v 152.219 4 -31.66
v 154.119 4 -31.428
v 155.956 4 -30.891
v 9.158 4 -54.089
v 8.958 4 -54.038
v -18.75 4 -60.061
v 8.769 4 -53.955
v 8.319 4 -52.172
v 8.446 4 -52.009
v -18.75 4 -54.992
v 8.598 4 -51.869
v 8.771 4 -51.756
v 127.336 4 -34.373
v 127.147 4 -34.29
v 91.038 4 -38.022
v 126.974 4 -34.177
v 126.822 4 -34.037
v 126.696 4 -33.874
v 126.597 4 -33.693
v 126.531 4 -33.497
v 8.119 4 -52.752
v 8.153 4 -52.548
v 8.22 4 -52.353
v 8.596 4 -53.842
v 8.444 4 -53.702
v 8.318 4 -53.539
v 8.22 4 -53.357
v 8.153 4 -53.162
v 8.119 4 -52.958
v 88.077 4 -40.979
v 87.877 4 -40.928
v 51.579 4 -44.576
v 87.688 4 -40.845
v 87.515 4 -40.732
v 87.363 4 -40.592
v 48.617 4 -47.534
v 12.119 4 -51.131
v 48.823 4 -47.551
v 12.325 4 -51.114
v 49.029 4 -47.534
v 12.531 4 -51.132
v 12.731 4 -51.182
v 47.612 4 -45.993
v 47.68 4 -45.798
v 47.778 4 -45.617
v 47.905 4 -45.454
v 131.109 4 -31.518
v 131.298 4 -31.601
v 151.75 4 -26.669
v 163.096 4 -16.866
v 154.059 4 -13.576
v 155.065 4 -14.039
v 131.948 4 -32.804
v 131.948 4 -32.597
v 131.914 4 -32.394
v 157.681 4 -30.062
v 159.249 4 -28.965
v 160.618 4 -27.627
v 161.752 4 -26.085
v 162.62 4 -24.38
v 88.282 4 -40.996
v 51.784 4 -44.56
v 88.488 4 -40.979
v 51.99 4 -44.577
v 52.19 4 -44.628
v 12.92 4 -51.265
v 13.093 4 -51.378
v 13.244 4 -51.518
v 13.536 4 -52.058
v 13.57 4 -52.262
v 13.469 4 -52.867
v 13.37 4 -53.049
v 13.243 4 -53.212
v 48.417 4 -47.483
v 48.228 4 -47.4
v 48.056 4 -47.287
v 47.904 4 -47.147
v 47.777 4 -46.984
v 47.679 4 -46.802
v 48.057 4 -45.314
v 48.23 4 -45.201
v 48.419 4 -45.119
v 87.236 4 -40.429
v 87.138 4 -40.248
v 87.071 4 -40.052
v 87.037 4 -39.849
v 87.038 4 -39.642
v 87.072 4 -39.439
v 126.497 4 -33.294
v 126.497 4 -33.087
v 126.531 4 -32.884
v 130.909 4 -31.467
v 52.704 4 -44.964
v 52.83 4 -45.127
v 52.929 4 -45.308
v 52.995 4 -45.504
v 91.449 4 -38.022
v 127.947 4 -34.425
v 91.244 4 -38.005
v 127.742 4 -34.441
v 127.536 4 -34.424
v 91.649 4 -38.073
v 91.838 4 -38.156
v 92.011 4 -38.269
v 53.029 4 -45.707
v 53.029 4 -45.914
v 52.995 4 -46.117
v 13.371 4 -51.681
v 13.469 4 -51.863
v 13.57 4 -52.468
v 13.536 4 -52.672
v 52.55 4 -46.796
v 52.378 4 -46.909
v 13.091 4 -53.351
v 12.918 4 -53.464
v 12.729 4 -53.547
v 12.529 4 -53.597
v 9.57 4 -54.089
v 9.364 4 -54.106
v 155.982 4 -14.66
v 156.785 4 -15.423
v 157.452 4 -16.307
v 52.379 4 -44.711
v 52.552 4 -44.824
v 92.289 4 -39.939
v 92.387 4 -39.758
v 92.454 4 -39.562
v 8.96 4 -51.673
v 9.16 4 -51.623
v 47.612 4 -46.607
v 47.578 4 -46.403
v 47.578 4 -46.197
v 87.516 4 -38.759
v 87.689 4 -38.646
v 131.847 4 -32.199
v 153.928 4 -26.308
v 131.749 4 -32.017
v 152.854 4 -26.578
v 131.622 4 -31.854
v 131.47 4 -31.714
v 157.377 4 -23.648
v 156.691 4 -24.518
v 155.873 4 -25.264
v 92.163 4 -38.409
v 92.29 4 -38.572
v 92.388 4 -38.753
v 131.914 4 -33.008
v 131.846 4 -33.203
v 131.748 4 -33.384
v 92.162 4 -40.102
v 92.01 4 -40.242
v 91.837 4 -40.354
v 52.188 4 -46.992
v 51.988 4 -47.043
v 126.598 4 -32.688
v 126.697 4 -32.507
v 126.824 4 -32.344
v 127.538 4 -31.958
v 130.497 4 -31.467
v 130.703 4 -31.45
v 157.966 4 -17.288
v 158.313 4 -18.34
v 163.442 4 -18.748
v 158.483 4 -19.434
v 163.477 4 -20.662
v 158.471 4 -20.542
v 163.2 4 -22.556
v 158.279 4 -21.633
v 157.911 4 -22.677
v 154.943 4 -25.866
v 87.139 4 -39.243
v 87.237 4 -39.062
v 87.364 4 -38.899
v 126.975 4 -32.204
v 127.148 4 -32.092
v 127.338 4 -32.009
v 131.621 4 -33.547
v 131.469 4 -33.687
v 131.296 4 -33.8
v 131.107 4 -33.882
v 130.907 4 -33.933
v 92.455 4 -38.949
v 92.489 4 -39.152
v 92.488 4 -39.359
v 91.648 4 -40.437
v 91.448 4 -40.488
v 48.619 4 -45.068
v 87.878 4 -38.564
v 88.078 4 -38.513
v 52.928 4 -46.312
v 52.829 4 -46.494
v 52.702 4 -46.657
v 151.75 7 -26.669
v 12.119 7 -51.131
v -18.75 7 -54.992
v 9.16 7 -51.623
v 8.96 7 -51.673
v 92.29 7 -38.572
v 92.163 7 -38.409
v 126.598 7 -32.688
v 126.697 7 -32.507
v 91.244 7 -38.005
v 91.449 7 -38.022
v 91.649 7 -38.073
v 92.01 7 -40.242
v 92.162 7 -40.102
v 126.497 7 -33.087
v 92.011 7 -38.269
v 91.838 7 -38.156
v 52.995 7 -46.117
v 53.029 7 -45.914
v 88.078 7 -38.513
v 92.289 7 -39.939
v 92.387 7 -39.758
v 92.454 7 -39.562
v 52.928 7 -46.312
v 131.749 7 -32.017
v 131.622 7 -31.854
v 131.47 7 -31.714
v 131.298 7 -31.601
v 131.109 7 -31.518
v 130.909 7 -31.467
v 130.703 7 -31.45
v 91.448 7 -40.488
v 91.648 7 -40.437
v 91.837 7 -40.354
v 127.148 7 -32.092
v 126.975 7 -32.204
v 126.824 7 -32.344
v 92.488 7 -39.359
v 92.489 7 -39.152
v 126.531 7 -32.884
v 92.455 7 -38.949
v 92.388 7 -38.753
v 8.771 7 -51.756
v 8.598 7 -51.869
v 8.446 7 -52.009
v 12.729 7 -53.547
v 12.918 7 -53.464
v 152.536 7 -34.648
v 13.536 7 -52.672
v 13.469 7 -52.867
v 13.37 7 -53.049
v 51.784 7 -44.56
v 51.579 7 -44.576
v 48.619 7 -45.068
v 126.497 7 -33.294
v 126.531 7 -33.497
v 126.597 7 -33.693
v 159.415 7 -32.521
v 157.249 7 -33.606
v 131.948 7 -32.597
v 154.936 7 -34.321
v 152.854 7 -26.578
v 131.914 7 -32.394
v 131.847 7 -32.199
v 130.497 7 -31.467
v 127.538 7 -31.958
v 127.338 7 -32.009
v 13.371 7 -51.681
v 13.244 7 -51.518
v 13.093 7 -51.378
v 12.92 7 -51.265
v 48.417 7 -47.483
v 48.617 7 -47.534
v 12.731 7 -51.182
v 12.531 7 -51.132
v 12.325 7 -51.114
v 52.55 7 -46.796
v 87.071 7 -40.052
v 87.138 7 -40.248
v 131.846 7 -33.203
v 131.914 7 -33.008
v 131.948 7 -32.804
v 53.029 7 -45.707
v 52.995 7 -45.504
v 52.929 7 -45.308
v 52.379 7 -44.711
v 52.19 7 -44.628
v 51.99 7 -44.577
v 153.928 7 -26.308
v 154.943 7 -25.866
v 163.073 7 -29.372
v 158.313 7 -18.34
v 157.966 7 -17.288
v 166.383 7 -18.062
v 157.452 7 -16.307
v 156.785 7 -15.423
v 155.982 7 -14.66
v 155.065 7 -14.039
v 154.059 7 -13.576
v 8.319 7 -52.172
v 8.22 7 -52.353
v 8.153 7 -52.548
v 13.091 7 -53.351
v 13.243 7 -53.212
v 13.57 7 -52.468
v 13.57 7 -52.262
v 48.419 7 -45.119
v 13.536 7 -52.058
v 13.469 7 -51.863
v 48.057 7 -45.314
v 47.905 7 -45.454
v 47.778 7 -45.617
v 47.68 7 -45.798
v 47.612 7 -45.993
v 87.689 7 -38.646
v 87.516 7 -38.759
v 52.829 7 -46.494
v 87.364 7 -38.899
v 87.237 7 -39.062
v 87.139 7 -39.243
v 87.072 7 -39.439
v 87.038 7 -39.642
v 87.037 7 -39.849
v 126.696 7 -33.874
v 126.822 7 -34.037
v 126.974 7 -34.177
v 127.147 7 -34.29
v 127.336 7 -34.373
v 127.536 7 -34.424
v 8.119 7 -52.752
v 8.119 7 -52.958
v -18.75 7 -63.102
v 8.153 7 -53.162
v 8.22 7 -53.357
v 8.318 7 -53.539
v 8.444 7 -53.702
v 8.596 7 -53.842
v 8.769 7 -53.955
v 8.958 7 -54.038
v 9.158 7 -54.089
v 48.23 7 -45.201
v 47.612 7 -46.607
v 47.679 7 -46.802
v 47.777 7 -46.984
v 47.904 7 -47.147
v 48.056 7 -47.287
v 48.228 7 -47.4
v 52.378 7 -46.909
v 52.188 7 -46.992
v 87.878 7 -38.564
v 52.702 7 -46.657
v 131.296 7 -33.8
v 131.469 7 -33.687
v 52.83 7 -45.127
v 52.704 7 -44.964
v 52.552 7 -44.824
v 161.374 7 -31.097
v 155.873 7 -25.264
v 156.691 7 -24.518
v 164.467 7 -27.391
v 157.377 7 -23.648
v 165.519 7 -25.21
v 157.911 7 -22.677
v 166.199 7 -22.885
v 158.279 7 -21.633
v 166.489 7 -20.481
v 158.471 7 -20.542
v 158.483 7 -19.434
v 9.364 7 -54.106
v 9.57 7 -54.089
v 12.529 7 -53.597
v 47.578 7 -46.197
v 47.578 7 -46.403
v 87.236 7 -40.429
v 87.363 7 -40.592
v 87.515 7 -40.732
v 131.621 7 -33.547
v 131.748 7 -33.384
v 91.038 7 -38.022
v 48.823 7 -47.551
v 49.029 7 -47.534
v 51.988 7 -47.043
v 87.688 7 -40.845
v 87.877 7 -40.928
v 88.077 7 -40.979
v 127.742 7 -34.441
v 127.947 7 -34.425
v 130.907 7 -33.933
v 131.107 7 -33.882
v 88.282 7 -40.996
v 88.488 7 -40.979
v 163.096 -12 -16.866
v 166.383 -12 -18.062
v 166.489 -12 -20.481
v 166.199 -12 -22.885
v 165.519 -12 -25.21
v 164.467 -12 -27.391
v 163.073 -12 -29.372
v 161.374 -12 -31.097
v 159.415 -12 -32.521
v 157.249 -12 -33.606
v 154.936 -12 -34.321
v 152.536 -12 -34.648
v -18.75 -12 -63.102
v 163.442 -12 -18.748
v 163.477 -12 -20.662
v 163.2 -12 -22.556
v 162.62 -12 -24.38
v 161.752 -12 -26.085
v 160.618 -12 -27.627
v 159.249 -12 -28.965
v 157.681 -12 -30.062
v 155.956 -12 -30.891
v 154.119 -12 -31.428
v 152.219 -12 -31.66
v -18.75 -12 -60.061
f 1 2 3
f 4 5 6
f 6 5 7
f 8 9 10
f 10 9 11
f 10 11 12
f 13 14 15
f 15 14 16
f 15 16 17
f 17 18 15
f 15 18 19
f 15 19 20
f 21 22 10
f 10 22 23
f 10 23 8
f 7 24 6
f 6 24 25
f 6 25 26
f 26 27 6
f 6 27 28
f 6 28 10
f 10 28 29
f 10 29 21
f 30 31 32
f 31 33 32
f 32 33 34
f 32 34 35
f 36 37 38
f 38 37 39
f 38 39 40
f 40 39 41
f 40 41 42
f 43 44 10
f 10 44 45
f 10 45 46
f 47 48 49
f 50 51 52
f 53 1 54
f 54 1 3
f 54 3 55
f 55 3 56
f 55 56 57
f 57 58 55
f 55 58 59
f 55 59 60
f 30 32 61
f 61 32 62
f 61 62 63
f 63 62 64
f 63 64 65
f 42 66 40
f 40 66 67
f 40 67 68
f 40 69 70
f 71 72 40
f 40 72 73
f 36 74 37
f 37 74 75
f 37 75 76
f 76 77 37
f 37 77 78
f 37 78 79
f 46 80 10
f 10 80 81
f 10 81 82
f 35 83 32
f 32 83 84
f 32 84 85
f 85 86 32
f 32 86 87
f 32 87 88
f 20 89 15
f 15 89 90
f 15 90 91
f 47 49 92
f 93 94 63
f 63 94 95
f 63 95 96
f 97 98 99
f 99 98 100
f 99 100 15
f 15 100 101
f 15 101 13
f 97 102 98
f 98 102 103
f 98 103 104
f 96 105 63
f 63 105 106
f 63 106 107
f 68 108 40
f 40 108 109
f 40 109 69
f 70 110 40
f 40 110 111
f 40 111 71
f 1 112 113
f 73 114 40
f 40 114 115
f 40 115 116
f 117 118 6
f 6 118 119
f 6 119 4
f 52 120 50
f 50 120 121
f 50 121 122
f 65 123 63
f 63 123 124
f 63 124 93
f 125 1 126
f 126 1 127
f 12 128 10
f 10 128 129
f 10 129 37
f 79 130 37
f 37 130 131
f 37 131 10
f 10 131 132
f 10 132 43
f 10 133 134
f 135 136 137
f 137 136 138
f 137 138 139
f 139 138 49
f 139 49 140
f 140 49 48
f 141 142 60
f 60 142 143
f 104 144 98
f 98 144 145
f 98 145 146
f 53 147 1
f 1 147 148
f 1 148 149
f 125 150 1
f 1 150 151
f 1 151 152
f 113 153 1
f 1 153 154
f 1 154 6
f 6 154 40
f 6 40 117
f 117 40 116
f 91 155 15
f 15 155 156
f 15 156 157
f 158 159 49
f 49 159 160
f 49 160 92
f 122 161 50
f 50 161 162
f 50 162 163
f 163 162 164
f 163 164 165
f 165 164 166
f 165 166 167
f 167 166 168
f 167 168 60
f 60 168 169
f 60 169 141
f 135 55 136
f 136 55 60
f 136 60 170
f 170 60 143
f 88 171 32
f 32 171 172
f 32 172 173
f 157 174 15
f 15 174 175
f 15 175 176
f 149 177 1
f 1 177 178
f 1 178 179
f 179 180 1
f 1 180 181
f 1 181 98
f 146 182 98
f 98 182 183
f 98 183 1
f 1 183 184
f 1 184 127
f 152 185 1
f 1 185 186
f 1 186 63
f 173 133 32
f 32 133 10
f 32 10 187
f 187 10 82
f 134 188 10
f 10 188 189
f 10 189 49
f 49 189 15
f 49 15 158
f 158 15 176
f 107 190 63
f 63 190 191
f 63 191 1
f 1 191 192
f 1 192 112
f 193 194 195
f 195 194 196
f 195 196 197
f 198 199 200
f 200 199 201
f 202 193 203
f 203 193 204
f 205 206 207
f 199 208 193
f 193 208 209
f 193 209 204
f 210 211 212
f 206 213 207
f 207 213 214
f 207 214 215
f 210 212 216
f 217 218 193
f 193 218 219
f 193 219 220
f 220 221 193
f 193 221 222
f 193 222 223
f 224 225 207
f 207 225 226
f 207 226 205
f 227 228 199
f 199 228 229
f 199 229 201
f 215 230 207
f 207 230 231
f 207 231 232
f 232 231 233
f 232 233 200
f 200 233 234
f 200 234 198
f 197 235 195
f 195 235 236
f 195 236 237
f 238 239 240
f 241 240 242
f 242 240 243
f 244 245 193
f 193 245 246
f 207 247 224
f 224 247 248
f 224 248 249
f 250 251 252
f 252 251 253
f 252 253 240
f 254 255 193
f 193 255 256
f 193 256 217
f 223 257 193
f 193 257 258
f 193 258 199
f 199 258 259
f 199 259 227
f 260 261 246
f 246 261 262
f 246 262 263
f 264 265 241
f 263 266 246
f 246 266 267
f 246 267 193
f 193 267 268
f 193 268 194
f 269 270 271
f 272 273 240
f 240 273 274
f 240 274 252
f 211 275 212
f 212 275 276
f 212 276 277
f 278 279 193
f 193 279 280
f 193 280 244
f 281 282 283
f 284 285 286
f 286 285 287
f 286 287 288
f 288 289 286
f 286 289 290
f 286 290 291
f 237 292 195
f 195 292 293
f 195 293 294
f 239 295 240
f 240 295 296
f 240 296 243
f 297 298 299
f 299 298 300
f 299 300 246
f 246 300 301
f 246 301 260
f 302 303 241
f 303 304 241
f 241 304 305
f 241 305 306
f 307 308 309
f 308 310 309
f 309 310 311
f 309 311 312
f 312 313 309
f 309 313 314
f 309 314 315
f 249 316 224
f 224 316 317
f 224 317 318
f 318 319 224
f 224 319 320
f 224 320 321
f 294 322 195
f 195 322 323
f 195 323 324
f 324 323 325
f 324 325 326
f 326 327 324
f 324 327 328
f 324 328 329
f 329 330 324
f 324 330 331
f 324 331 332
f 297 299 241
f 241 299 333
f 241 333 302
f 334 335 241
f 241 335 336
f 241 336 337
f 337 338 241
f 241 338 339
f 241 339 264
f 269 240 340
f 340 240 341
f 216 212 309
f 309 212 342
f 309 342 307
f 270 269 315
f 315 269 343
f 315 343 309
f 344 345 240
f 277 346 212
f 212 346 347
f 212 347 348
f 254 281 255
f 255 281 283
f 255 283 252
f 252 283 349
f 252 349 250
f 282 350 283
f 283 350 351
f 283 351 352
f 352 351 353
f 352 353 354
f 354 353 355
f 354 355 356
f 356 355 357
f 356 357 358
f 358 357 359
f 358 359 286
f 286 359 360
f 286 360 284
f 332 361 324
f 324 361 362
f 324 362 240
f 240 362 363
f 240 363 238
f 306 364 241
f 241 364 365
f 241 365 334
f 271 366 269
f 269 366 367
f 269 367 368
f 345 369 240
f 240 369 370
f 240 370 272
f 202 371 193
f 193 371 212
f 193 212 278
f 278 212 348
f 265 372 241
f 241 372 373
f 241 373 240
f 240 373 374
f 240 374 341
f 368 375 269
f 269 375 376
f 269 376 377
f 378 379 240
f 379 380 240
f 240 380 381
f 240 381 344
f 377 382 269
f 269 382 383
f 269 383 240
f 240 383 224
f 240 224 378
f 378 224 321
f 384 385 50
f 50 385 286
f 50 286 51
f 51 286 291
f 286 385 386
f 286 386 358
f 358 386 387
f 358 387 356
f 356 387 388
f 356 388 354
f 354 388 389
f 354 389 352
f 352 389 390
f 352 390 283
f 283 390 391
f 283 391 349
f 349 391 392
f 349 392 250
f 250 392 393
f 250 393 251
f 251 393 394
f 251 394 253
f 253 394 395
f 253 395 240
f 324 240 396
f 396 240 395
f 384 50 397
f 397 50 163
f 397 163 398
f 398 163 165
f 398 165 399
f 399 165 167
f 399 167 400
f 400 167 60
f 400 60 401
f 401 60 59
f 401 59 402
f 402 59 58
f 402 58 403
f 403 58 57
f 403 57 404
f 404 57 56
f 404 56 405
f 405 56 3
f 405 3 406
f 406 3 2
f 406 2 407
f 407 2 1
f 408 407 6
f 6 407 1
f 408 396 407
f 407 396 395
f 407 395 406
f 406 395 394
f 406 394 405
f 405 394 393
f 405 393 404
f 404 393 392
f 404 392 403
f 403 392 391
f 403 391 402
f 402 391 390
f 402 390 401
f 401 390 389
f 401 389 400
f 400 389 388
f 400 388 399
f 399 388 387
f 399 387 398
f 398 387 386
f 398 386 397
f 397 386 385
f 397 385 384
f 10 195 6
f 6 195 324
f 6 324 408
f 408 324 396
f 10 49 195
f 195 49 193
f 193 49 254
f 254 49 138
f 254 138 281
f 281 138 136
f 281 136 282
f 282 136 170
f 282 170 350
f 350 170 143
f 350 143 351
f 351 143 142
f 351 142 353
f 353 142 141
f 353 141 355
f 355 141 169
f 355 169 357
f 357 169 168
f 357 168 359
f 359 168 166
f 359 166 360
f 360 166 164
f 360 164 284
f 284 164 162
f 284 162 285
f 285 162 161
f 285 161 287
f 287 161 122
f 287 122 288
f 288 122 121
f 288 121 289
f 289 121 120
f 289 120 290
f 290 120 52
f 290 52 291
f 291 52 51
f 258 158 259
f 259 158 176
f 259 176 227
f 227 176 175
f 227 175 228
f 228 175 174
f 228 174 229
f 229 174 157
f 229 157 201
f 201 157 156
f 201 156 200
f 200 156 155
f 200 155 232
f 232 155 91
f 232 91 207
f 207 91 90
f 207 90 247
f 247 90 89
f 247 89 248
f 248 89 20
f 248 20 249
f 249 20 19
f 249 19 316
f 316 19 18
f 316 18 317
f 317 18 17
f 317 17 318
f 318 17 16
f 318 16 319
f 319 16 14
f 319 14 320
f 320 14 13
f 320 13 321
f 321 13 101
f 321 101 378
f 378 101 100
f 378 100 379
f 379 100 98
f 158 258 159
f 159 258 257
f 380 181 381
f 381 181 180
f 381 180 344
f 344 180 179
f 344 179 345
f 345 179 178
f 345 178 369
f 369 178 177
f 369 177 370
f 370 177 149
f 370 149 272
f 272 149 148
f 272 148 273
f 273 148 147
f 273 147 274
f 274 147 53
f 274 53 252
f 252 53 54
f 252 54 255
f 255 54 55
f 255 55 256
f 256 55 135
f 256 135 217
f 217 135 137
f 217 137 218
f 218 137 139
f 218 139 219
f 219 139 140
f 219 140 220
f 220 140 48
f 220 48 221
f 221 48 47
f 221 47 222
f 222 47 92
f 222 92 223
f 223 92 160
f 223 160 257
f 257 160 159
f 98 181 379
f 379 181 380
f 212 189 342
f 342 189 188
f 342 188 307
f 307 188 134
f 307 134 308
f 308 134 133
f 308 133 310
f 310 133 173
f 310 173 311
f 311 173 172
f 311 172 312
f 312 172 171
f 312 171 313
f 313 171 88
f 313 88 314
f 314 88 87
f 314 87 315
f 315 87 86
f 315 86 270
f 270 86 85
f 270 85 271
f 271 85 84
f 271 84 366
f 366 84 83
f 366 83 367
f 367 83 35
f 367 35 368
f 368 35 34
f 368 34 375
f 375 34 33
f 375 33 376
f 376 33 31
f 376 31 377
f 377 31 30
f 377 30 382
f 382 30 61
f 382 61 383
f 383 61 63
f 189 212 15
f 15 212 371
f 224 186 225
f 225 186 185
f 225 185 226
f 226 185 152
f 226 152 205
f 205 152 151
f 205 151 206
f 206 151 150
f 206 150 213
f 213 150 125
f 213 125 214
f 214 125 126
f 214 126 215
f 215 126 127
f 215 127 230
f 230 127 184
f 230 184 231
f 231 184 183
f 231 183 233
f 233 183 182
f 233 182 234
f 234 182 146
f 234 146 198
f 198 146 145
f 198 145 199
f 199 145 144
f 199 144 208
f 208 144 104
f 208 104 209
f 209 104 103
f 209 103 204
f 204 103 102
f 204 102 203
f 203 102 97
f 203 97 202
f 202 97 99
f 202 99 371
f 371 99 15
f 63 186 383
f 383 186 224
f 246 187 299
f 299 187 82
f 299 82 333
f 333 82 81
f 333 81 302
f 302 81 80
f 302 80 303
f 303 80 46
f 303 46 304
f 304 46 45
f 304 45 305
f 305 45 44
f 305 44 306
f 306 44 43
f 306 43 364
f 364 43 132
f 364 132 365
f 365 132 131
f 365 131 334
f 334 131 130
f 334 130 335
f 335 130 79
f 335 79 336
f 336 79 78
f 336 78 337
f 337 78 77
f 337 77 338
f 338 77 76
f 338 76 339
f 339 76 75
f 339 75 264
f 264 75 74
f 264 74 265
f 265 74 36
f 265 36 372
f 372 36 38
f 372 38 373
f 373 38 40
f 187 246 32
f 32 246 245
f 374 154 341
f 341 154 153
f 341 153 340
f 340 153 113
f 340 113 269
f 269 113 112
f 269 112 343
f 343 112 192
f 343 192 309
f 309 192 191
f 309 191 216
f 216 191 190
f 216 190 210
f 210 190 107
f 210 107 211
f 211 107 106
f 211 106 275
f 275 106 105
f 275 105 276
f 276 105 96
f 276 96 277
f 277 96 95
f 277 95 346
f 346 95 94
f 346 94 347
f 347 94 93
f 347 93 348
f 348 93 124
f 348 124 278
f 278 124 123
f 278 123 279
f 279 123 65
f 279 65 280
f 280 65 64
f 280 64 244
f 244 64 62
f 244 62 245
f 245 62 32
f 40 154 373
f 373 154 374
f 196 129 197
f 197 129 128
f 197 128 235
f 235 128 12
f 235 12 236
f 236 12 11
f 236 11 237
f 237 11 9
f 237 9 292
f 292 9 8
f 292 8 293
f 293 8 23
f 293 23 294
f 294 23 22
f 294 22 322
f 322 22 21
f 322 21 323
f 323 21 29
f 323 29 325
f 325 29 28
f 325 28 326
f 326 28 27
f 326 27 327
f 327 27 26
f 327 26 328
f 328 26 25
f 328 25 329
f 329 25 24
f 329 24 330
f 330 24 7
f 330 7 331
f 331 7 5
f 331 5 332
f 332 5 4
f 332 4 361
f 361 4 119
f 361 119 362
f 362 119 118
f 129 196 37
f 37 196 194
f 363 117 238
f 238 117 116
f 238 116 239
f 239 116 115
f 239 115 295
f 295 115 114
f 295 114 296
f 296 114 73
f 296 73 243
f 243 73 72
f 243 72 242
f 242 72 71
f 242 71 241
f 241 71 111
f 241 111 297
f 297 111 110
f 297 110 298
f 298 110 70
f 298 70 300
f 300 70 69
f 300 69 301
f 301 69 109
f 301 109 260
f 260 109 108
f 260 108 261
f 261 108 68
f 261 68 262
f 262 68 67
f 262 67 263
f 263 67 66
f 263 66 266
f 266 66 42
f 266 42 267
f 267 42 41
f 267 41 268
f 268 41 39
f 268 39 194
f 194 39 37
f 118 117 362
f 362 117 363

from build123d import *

# Parameters (mm, degrees)
SKETCH_1_W           = 35
SKETCH_1_H           = 55
EXTRUDE_1_DEPTH      = 1
EXTRUDE_2_DEPTH      = 3
SKETCH_3_R           = 5
CUT_EXTRUDE_1_DEPTH  = 169.569903897
SKETCH_4_R           = 4
CUT_EXTRUDE_2_DEPTH  = 2
SKETCH_5_R           = 2
CUT_EXTRUDE_3_DEPTH  = 2
EXTRUDE_START        = 7
EXTRUDE_3_DEPTH      = 7
CUT_EXTRUDE_START    = -1.5
SKETCH_9_W           = 10
SKETCH_9_H           = 26
CUT_EXTRUDE_4_DEPTH  = 168.318874833
SKETCH_10_R          = 1.5
CUT_EXTRUDE_5_DEPTH  = 194.595583627
EXTRUDE_4_DEPTH      = 3
SKETCH_13_W          = 334.012533363
SKETCH_13_H          = 161.456209481
CUT_EXTRUDE_6_DEPTH  = 10
SKETCH_14_R          = 3.5
CUT_EXTRUDE_7_DEPTH  = 2.5
SKETCH_15_R          = 5
CUT_EXTRUDE_8_DEPTH  = 179.854165453
EXTRUDE_START_2      = 16
EXTRUDE_5_DEPTH      = 16
EXTRUDE_6_DEPTH      = 7
SKETCH_19_W          = 10
SKETCH_19_H          = 26
CUT_EXTRUDE_9_DEPTH  = 180.209193181
SKETCH_20_R          = 1.5
CUT_EXTRUDE_10_DEPTH = 175.844216376
THREAD_1_PITCH       = 0.6
CUT_EXTRUDE_11_DEPTH = 181.709193232
SKETCH_22_W          = 13
SKETCH_22_H          = 1.5
CUT_EXTRUDE_12_DEPTH = 7
SKETCH_23_R          = 5
EXTRUDE_7_DEPTH      = 2
CUT_EXTRUDE_START_2  = -3
CUT_EXTRUDE_15_DEPTH = 177.762490825
SKETCH_25_R          = 7.5
CUT_EXTRUDE_16_DEPTH = 4
CUT_EXTRUDE_17_DEPTH = 10
SKETCH_27_R          = 1.75
CUT_EXTRUDE_18_DEPTH = 10
CUT_EXTRUDE_19_DEPTH = 180.762490825
CUT_EXTRUDE_START_3  = -10
SKETCH_29_R          = 3.5
CUT_EXTRUDE_23_DEPTH = 10
CUT_EXTRUDE_24_DEPTH = 10


with BuildPart() as part:
    # Sketch 1 → 凸台-拉伸1 (new body)
    with BuildSketch(Plane(origin=(0, 0, 0), x_dir=(1, 0, 0), z_dir=(0, 1, 0))):
        Rectangle(SKETCH_1_W, SKETCH_1_H)
    extrude(amount=EXTRUDE_1_DEPTH)

    # 草图2 → 凸台-拉伸2 (add)
    with BuildSketch(Plane(origin=(0, 1, 0), x_dir=(1, 0, 0), z_dir=(0, 1, 0))):
        with BuildLine():
            Line((106.75, -2.25), (106.75, 2.25))
            Line((106.75, 2.25), (121.75, 2.25))
            ThreePointArc((121.75, 2.25), (122.922125199, 2.352547667), (124.058635967, 2.65707481))
            Line((124.058635967, 2.65707481), (154.058635967, 13.576181838))
            ThreePointArc((154.058635967, 13.576181838), (158.397452333, 21.091232227), (151.75, 26.669107028))
            Line((151.75, 26.669107028), (-31.447415548, 57.101298968))
            ThreePointArc((-31.447415548, 57.101298968), (-37.800418235, 56.264673928), (-42.609265279, 52.029632639))
            Line((-42.609265279, 52.029632639), (-60.161792173, 23.605896086))
            ThreePointArc((-60.161792173, 23.605896086), (-61.717833724, 20.073278016), (-62.25, 16.25))
            Line((-62.25, 16.25), (-62.25, -16.25))
            ThreePointArc((-62.25, -16.25), (-61.717833724, -20.073278016), (-60.161792173, -23.605896086))
            Line((-60.161792173, -23.605896086), (-42.609265279, -52.029632639))
            ThreePointArc((-42.609265279, -52.029632639), (-37.800418235, -56.264673928), (-31.447415548, -57.101298968))
            Line((-31.447415548, -57.101298968), (151.75, -26.669107028))
            ThreePointArc((151.75, -26.669107028), (158.397452333, -21.091232227), (154.058635967, -13.576181838))
            Line((154.058635967, -13.576181838), (124.058635967, -2.65707481))
            ThreePointArc((124.058635967, -2.65707481), (122.922125199, -2.352547667), (121.75, -2.25))
            Line((121.75, -2.25), (106.75, -2.25))
        make_face()
    extrude(amount=EXTRUDE_2_DEPTH)

    # 草图3 → 切除-拉伸1 (cut, through all)
    with BuildSketch(Plane(origin=(0, 4, 0), x_dir=(1, 0, 0), z_dir=(0, 1, 0))):
        with Locations(Location((-48.25, 16.25, 0), (0, 0, 270))):
            Circle(SKETCH_3_R)
        with Locations(Location((-48.25, -16.25, 0), (0, 0, 270))):
            Circle(SKETCH_3_R)
    extrude(amount=-CUT_EXTRUDE_1_DEPTH, mode=Mode.SUBTRACT)

    # 草图4 → 切除-拉伸2 (cut)
    with BuildSketch(Plane(origin=(0, 4, 0), x_dir=(1, 0, 0), z_dir=(0, 1, 0))):
        with Locations(Location((-33.25, 46.25, 0), (0, 0, 270))):
            Circle(SKETCH_4_R)
        with Locations(Location((-33.25, -46.25, 0), (0, 0, 270))):
            Circle(SKETCH_4_R)
    extrude(amount=-CUT_EXTRUDE_2_DEPTH, mode=Mode.SUBTRACT)

    # 草图5 → 切除-拉伸3 (cut)
    with BuildSketch(Plane(origin=(0, 4, 0), x_dir=(1, 0, 0), z_dir=(0, 1, 0))):
        with Locations(Location((121.75, 9, 0), (0, 0, 270))):
            Circle(SKETCH_5_R)
        with Locations(Location((121.75, -9, 0), (0, 0, 270))):
            Circle(SKETCH_5_R)
        with Locations(Location((151.75, 19.919107028, 0), (0, 0, 270))):
            Circle(SKETCH_5_R)
        with Locations(Location((151.75, -19.919107028, 0), (0, 0, 270))):
            Circle(SKETCH_5_R)
    extrude(amount=-CUT_EXTRUDE_3_DEPTH, mode=Mode.SUBTRACT)

    # 草图8 → 凸台-拉伸3 (add)
    with BuildSketch(Plane.XZ.offset(-1).offset(EXTRUDE_START)):
        with BuildLine():
            Line((-26.75, -26.25), (-39.75, -26.25))
            Line((-39.75, -26.25), (-39.75, -55.124119675))
            ThreePointArc((-39.75, -55.124119675), (-35.798281322, -56.950759894), (-31.447415548, -57.101298968))
            Line((-31.447415548, -57.101298968), (-26.75, -56.320978726))
            Line((-26.75, -56.320978726), (-26.75, -26.25))
        make_face()
    extrude_3 = extrude(amount=-EXTRUDE_3_DEPTH)

    # 镜向1: 凸台-拉伸3 across plane
    add(extrude_3.mirror(Plane.XY))

    # 草图9 → 切除-拉伸4 (cut, through all)
    with BuildSketch(Plane.XZ.offset(6).offset(CUT_EXTRUDE_START)):
        with Locations((-33.25, -40.75)):
            Rectangle(SKETCH_9_W, SKETCH_9_H)
    cut_extrude_4 = extrude(amount=-CUT_EXTRUDE_4_DEPTH, mode=Mode.SUBTRACT)

    # 镜向2: 切除-拉伸4 across plane
    add(cut_extrude_4.mirror(Plane.XY), mode=Mode.SUBTRACT)

    # 草图10 → 切除-拉伸5 (cut, through all)
    with BuildSketch(Plane.XY.offset(-53.75)):
        with Locations((-33.25, -1.5)):
            Circle(SKETCH_10_R)
    cut_extrude_5 = extrude(amount=-CUT_EXTRUDE_5_DEPTH, mode=Mode.SUBTRACT)

    # 镜向3: 切除-拉伸5 across plane
    add(cut_extrude_5.mirror(Plane.XY), mode=Mode.SUBTRACT)

    # 草图12 → 凸台-拉伸4 (add)
    with BuildSketch(Plane(origin=(0, 4, 0), x_dir=(1, 0, 0), z_dir=(0, 1, 0))):
        with BuildLine():
            Line((152.536154407, 34.648141662), (-30.136445037, 64.993152763))
            ThreePointArc((-30.136445037, 64.993152763), (-32.296727103, 65.226071005), (-34.469475839, 65.210824842))
            Line((-34.469475839, 65.210824842), (-60.161792173, 23.605896086))
            ThreePointArc((-60.161792173, 23.605896086), (-61.717833724, 20.073278016), (-62.25, 16.25))
            Line((-62.25, 16.25), (-62.25, 2.25))
            Line((-62.25, 2.25), (121.75, 2.25))
            ThreePointArc((121.75, 2.25), (122.922125199, 2.352547667), (124.058635967, 2.65707481))
            Line((124.058635967, 2.65707481), (166.382589153, 18.061733966))
            ThreePointArc((166.382589153, 18.061733966), (163.073058037, 29.371665237), (152.536154407, 34.648141662))
        make_face()
    extrude(amount=EXTRUDE_4_DEPTH)

    # 草图13 → 切除-拉伸6 (cut)
    with BuildSketch(Plane.XZ.offset(-4)):
        with Locations((47.836319436, 6.16656882)):
            Rectangle(SKETCH_13_W, SKETCH_13_H)
    extrude(amount=CUT_EXTRUDE_6_DEPTH, mode=Mode.SUBTRACT)

    # 草图14 → 切除-拉伸7 (cut)
    with BuildSketch(Plane.XZ.offset(-4)):
        with Locations(Location((151.75, -19.919107028, 0), (0, 0, 270))):
            Circle(SKETCH_14_R)
        with Locations(Location((121.75, -9, 0), (0, 0, 270))):
            Circle(SKETCH_14_R)
    extrude(amount=-CUT_EXTRUDE_7_DEPTH, mode=Mode.SUBTRACT)

    # 草图15 → 切除-拉伸8 (cut, through all)
    with BuildSketch(Plane.XZ.offset(-4)):
        with Locations(Location((-48.25, -16.25, 0), (0, 0, 270))):
            Circle(SKETCH_15_R)
    extrude(amount=-CUT_EXTRUDE_8_DEPTH, mode=Mode.SUBTRACT)

    # 草图17 → 凸台-拉伸5 (add)
    with BuildSketch(Plane.XZ.offset(-4).offset(EXTRUDE_START_2)):
        with BuildLine():
            Line((-30.628058978, -62.03370759), (152.218782473, -31.659751942))
            ThreePointArc((152.218782473, -31.659751942), (161.216553887, -26.879484712), (163.096310198, -16.865626245))
            Line((163.096310198, -16.865626245), (166.382589153, -18.061733966))
            ThreePointArc((166.382589153, -18.061733966), (163.073058037, -29.371665237), (152.536154407, -34.648141662))
            Line((152.536154407, -34.648141662), (-30.136445037, -64.993152763))
            ThreePointArc((-30.136445037, -64.993152763), (-32.296727103, -65.226071005), (-34.469475839, -65.210824842))
            Line((-34.469475839, -65.210824842), (-36.504423199, -61.915526791))
            ThreePointArc((-36.504423199, -61.915526791), (-33.571714316, -62.246765295), (-30.628058978, -62.03370759))
        make_face()
    extrude(amount=-EXTRUDE_5_DEPTH)

    # 草图18 → 凸台-拉伸6 (add)
    with BuildSketch(Plane(origin=(0, 7, 0), x_dir=(1, 0, 0), z_dir=(0, 1, 0))):
        with BuildLine():
            Line((-39.75, 56.65979236), (-39.75, 26.25))
            Line((-39.75, 26.25), (-26.75, 26.25))
            Line((-26.75, 26.25), (-26.75, 64.430606916))
            Line((-26.75, 64.430606916), (-30.136445037, 64.993152763))
            ThreePointArc((-30.136445037, 64.993152763), (-32.296727103, 65.226071005), (-34.469475839, 65.210824842))
            Line((-34.469475839, 65.210824842), (-39.75, 56.65979236))
        make_face()
    extrude(amount=EXTRUDE_6_DEPTH)

    # 草图19 → 切除-拉伸9 (cut, through all)
    with BuildSketch(Plane(origin=(0, 14, 0), x_dir=(1, 0, 0), z_dir=(0, 1, 0)).offset(CUT_EXTRUDE_START)):
        with Locations((-33.25, 40.75)):
            Rectangle(SKETCH_19_W, SKETCH_19_H)
    extrude(amount=-CUT_EXTRUDE_9_DEPTH, mode=Mode.SUBTRACT)

    # 草图20 → 切除-拉伸10 (cut, through all)
    with BuildSketch(Plane.XY.offset(-53.75)):
        with Locations((-33.25, 9.5)):
            Circle(SKETCH_20_R)
    extrude(amount=-CUT_EXTRUDE_10_DEPTH, mode=Mode.SUBTRACT)

    # 螺纹线1: the profile of Sketch 1 2 profile screwed along a right-hand helix of 25 turns, 6 arcs to a turn; built about Z, then put on its axis
    thread_1_z = Axis((0, 0, 0), (0, 0, 1))
    thread_1_corners = [(1.4997, 0, -0.000173205), (1.824759525, 0, 0.187499999), (1.824759525, 0, 0.262499999), (1.4997, 0, 0.450173203)]
    with BuildLine(mode=Mode.PRIVATE) as thread_1_profile:
        Line(thread_1_corners[0], thread_1_corners[1])
        Line(thread_1_corners[1], thread_1_corners[2])
        Line(thread_1_corners[2], thread_1_corners[3])
        Line(thread_1_corners[3], thread_1_corners[0])
    thread_1_cap = Face(thread_1_profile.wire())
    thread_1_turn_angles = [0, 30, 60, 90, 120, 150, 180, 210, 240, 270, 300, 330, 360]
    thread_1_turn_weights = [1, 0.8660254037844387, 1, 0.8660254037844387, 1, 0.8660254037844387, 1, 0.8660254037844387, 1, 0.8660254037844387, 1, 0.8660254037844387, 1]
    thread_1_turn_rails = [Edge.make_bspline([Vector(p[0], p[1], 0).rotate(thread_1_z, thread_1_turn_angles[k]) / thread_1_turn_weights[k] + Vector(0, 0, p[2] + THREAD_1_PITCH * thread_1_turn_angles[k] / 360) for k in range(13)], [0, 0, 0, 1, 1, 2, 2, 3, 3, 4, 4, 5, 5, 6, 6, 6], 2, thread_1_turn_weights) for p in thread_1_corners]
    thread_1_turn_sides = [Face.make_surface_from_curves(thread_1_turn_rails[p[0]], thread_1_turn_rails[p[1]]) for p in [(0, 1), (1, 2), (2, 3), (3, 0)]]
    thread_1 = Plane(origin=(-33.25, 9.5, -53.75), x_dir=(-1, 0, 0), z_dir=(0, 0, -1)) * Solid(Shell([*[p.moved(Location((0, 0, THREAD_1_PITCH * i))) for i in range(25) for p in thread_1_turn_sides], thread_1_cap, thread_1_cap.rotate(thread_1_z, 9000).moved(Location((0, 0, THREAD_1_PITCH * 9000 / 360)))]))
    add(thread_1, mode=Mode.SUBTRACT)

    # 草图21 → 切除-拉伸11 (cut, through all)
    with BuildSketch(Plane(origin=(0, 14, 0), x_dir=(1, 0, 0), z_dir=(0, 1, 0))):
        with BuildLine():
            Line((-39.75, 27.75), (-26.75, 27.75))
            Line((-26.75, 27.75), (-26.75, 64.430606916))
            Line((-26.75, 64.430606916), (-30.136445037, 64.993152763))
            ThreePointArc((-30.136445037, 64.993152763), (-32.296727103, 65.226071005), (-34.469475839, 65.210824842))
            Line((-34.469475839, 65.210824842), (-39.75, 56.65979236))
            Line((-39.75, 56.65979236), (-39.75, 27.75))
        make_face()
    extrude(amount=-CUT_EXTRUDE_11_DEPTH, mode=Mode.SUBTRACT)

    # 草图22 → 切除-拉伸12 (cut)
    with BuildSketch(Plane(origin=(0, 14, 0), x_dir=(1, 0, 0), z_dir=(0, 1, 0))):
        with Locations((-33.25, 27)):
            Rectangle(SKETCH_22_W, SKETCH_22_H)
    extrude(amount=-CUT_EXTRUDE_12_DEPTH, mode=Mode.SUBTRACT)

    # 草图23 → 凸台-拉伸7 (add)
    with BuildSketch(Plane(origin=(0, 7, 0), x_dir=(1, 0, 0), z_dir=(0, 1, 0))):
        with BuildLine():
            Line((-26.75, 27.75), (-39.75, 27.75))
            Line((-39.75, 27.75), (-39.75, 56.65979236))
            Line((-39.75, 56.65979236), (-60.161792173, 23.605896086))
            ThreePointArc((-60.161792173, 23.605896086), (-61.717833724, 20.073278016), (-62.25, 16.25))
            Line((-62.25, 16.25), (-62.25, 2.25))
            Line((-62.25, 2.25), (-18.75, 2.25))
            Line((-18.75, 2.25), (-18.75, 63.101671489))
            Line((-18.75, 63.101671489), (-26.75, 64.430606916))
            Line((-26.75, 64.430606916), (-26.75, 27.75))
        make_face()
        with Locations(Location((-48.25, 16.25, 0), (0, 0, 90))):
            Circle(SKETCH_23_R, mode=Mode.SUBTRACT)
    extrude(amount=EXTRUDE_7_DEPTH)

    # 草图24 → 切除-拉伸15 (cut, through all)
    with BuildSketch(Plane(origin=(0, 9, 0), x_dir=(1, 0, 0), z_dir=(0, 1, 0)).offset(CUT_EXTRUDE_START_2)):
        Polygon((-45.75, 46.034880297), (-45.75, 27.75), (-39.75, 27.75), (-39.75, 56.65979236), (-45.75, 46.943674541), align=None)
        Polygon((-26.75, 64.430606916), (-26.75, 27.75), (-20.75, 27.75), (-20.75, 63.433905346), align=None)
    extrude(amount=-CUT_EXTRUDE_15_DEPTH, mode=Mode.SUBTRACT)

    # 草图25 → 切除-拉伸16 (cut)
    with BuildSketch(Plane.XZ.offset(-4)):
        with Locations(Location((-48.25, -16.25, 0), (0, 0, 270))):
            Circle(SKETCH_25_R)
    extrude(amount=-CUT_EXTRUDE_16_DEPTH, mode=Mode.SUBTRACT)

    # 草图26 → 切除-拉伸17 (cut)
    with BuildSketch(Plane(origin=(0, 7, 0), x_dir=(1, 0, 0), z_dir=(0, 1, 0))):
        with BuildLine():
            Line((3.5, 31.25), (3.5, 35.25))
            ThreePointArc((3.5, 35.25), (1.75, 37), (0, 35.25))
            Line((0, 35.25), (0, 31.25))
            ThreePointArc((0, 31.25), (1.75, 29.5), (3.5, 31.25))
        make_face()
        with BuildLine():
            ThreePointArc((41.75, 18), (40.512563133, 17.487436867), (40, 16.25))
            Line((40, 16.25), (47.5, 16.25))
            ThreePointArc((47.5, 16.25), (46.987436867, 17.487436867), (45.75, 18))
            Line((45.75, 18), (41.75, 18))
        make_face()
        with BuildLine():
            Line((47.5, 16.25), (40, 16.25))
            ThreePointArc((40, 16.25), (40.512563133, 15.012563133), (41.75, 14.5))
            Line((41.75, 14.5), (45.75, 14.5))
            ThreePointArc((45.75, 14.5), (46.987436867, 15.012563133), (47.5, 16.25))
        make_face()
        with BuildLine():
            Line((81.75, 14.5), (85.75, 14.5))
            ThreePointArc((85.75, 14.5), (87.5, 16.25), (85.75, 18))
            Line((85.75, 18), (81.75, 18))
            ThreePointArc((81.75, 18), (80, 16.25), (81.75, 14.5))
        make_face()
        with BuildLine():
            Line((1.75, 18), (5.75, 18))
            ThreePointArc((5.75, 18), (7.5, 16.25), (5.75, 14.5))
            Line((5.75, 14.5), (1.75, 14.5))
            ThreePointArc((1.75, 14.5), (0, 16.25), (1.75, 18))
        make_face()
    extrude(amount=-CUT_EXTRUDE_17_DEPTH, mode=Mode.SUBTRACT)

    # 草图27 → 切除-拉伸18 (cut)
    with BuildSketch(Plane.XZ.offset(-6)):
        with Locations(Location((-42.75, -32.75, 0), (0, 0, 270))):
            Circle(SKETCH_27_R)
        with Locations(Location((-42.75, -42.75, 0), (0, 0, 270))):
            Circle(SKETCH_27_R)
        with Locations(Location((-23.75, -32.75, 0), (0, 0, 270))):
            Circle(SKETCH_27_R)
        with Locations(Location((-23.75, -42.75, 0), (0, 0, 270))):
            Circle(SKETCH_27_R)
    extrude(amount=-CUT_EXTRUDE_18_DEPTH, mode=Mode.SUBTRACT)

    # 草图28 → 切除-拉伸19 (cut, through all)
    with BuildSketch(Plane(origin=(0, 9, 0), x_dir=(1, 0, 0), z_dir=(0, 1, 0))):
        with BuildLine():
            Line((-26.75, 27.75), (-39.75, 27.75))
            Line((-39.75, 27.75), (-39.75, 56.65979236))
            Line((-39.75, 56.65979236), (-60.161792173, 23.605896086))
            ThreePointArc((-60.161792173, 23.605896086), (-61.717833724, 20.073278016), (-62.25, 16.25))
            Line((-62.25, 16.25), (-62.25, 2.25))
            Line((-62.25, 2.25), (-18.75, 2.25))
            Line((-18.75, 2.25), (-18.75, 63.101671489))
            Line((-18.75, 63.101671489), (-26.75, 64.430606916))
            Line((-26.75, 64.430606916), (-26.75, 27.75))
        make_face()
    extrude(amount=-CUT_EXTRUDE_19_DEPTH, mode=Mode.SUBTRACT)

    # 草图29 → 切除-拉伸23 (cut)
    # profile 1 of 3: a face of its own
    with BuildSketch(Plane.XZ.offset(-4).offset(CUT_EXTRUDE_START_3)):
        with BuildLine():
            Line((-18.75, -2.25), (-18.75, -54.9920433))
            Line((-18.75, -54.9920433), (151.75, -26.669107028))
            ThreePointArc((151.75, -26.669107028), (158.397452333, -21.091232227), (154.058635967, -13.576181838))
            Line((154.058635967, -13.576181838), (124.058635967, -2.65707481))
            ThreePointArc((124.058635967, -2.65707481), (122.922125199, -2.352547667), (121.75, -2.25))
            Line((121.75, -2.25), (-18.75, -2.25))
        make_face()
        with BuildLine():
            Line((0, -35.25), (0, -31.25))
            ThreePointArc((0, -31.25), (1.75, -29.5), (3.5, -31.25))
            Line((3.5, -31.25), (3.5, -35.25))
            ThreePointArc((3.5, -35.25), (1.75, -37), (0, -35.25))
        make_face(mode=Mode.SUBTRACT)
        with BuildLine():
            ThreePointArc((5.75, -14.5), (7.5, -16.25), (5.75, -18))
            Line((5.75, -18), (1.75, -18))
            ThreePointArc((1.75, -18), (0, -16.25), (1.75, -14.5))
            Line((1.75, -14.5), (5.75, -14.5))
        make_face(mode=Mode.SUBTRACT)
        with BuildLine():
            ThreePointArc((45.75, -14.5), (47.5, -16.25), (45.75, -18))
            Line((45.75, -18), (41.75, -18))
            ThreePointArc((41.75, -18), (40, -16.25), (41.75, -14.5))
            Line((41.75, -14.5), (45.75, -14.5))
        make_face(mode=Mode.SUBTRACT)
        with Locations((151.75, -19.919107028)):
            Circle(SKETCH_29_R, mode=Mode.SUBTRACT)
        with BuildLine():
            Line((85.75, -18), (81.75, -18))
            ThreePointArc((81.75, -18), (80, -16.25), (81.75, -14.5))
            Line((81.75, -14.5), (85.75, -14.5))
            ThreePointArc((85.75, -14.5), (87.5, -16.25), (85.75, -18))
        make_face(mode=Mode.SUBTRACT)
        with Locations((121.75, -9)):
            Circle(SKETCH_29_R, mode=Mode.SUBTRACT)
    # profile 2 of 3: a face of its own
    with BuildSketch(Plane.XZ.offset(-4).offset(CUT_EXTRUDE_START_3)):
        with Locations((121.75, -9)):
            Circle(SKETCH_29_R)
    # profile 3 of 3: a face of its own
    with BuildSketch(Plane.XZ.offset(-4).offset(CUT_EXTRUDE_START_3)):
        with Locations((151.75, -19.919107028)):
            Circle(SKETCH_29_R)
    extrude(amount=CUT_EXTRUDE_23_DEPTH, mode=Mode.SUBTRACT)

    # 草图30 → 切除-拉伸24 (cut)
    with BuildSketch(Plane.XZ.offset(-4)):
        with BuildLine():
            Line((9.159890002, -51.622867509), (12.119335175, -51.131253567))
            ThreePointArc((12.119335175, -51.131253567), (13.557276473, -52.15951658), (12.52901346, -53.597457878))
            Line((12.52901346, -53.597457878), (9.569568287, -54.08907182))
            ThreePointArc((9.569568287, -54.08907182), (8.131626989, -53.060808807), (9.159890002, -51.622867509))
        make_face()
        with BuildLine():
            Line((48.619158976, -45.068014955), (51.578604149, -44.576401013))
            ThreePointArc((51.578604149, -44.576401013), (53.016545447, -45.604664026), (51.988282434, -47.042605324))
            Line((51.988282434, -47.042605324), (49.028837261, -47.534219265))
            ThreePointArc((49.028837261, -47.534219265), (47.590895963, -46.505956252), (48.619158976, -45.068014955))
        make_face()
        with BuildLine():
            Line((88.078427951, -38.5131624), (91.037873124, -38.021548459))
            ThreePointArc((91.037873124, -38.021548459), (92.475814422, -39.049811472), (91.447551408, -40.48775277))
            Line((91.447551408, -40.48775277), (88.488106235, -40.979366711))
            ThreePointArc((88.488106235, -40.979366711), (87.050164938, -39.951103698), (88.078427951, -38.5131624))
        make_face()
        with BuildLine():
            Line((127.537696925, -31.958309846), (130.497142098, -31.466695904))
            ThreePointArc((130.497142098, -31.466695904), (131.935083396, -32.494958918), (130.906820383, -33.932900215))
            Line((130.906820383, -33.932900215), (127.94737521, -34.424514157))
            ThreePointArc((127.94737521, -34.424514157), (126.509433912, -33.396251144), (127.537696925, -31.958309846))
        make_face()
    extrude(amount=-CUT_EXTRUDE_24_DEPTH, mode=Mode.SUBTRACT)


solid = part.part
